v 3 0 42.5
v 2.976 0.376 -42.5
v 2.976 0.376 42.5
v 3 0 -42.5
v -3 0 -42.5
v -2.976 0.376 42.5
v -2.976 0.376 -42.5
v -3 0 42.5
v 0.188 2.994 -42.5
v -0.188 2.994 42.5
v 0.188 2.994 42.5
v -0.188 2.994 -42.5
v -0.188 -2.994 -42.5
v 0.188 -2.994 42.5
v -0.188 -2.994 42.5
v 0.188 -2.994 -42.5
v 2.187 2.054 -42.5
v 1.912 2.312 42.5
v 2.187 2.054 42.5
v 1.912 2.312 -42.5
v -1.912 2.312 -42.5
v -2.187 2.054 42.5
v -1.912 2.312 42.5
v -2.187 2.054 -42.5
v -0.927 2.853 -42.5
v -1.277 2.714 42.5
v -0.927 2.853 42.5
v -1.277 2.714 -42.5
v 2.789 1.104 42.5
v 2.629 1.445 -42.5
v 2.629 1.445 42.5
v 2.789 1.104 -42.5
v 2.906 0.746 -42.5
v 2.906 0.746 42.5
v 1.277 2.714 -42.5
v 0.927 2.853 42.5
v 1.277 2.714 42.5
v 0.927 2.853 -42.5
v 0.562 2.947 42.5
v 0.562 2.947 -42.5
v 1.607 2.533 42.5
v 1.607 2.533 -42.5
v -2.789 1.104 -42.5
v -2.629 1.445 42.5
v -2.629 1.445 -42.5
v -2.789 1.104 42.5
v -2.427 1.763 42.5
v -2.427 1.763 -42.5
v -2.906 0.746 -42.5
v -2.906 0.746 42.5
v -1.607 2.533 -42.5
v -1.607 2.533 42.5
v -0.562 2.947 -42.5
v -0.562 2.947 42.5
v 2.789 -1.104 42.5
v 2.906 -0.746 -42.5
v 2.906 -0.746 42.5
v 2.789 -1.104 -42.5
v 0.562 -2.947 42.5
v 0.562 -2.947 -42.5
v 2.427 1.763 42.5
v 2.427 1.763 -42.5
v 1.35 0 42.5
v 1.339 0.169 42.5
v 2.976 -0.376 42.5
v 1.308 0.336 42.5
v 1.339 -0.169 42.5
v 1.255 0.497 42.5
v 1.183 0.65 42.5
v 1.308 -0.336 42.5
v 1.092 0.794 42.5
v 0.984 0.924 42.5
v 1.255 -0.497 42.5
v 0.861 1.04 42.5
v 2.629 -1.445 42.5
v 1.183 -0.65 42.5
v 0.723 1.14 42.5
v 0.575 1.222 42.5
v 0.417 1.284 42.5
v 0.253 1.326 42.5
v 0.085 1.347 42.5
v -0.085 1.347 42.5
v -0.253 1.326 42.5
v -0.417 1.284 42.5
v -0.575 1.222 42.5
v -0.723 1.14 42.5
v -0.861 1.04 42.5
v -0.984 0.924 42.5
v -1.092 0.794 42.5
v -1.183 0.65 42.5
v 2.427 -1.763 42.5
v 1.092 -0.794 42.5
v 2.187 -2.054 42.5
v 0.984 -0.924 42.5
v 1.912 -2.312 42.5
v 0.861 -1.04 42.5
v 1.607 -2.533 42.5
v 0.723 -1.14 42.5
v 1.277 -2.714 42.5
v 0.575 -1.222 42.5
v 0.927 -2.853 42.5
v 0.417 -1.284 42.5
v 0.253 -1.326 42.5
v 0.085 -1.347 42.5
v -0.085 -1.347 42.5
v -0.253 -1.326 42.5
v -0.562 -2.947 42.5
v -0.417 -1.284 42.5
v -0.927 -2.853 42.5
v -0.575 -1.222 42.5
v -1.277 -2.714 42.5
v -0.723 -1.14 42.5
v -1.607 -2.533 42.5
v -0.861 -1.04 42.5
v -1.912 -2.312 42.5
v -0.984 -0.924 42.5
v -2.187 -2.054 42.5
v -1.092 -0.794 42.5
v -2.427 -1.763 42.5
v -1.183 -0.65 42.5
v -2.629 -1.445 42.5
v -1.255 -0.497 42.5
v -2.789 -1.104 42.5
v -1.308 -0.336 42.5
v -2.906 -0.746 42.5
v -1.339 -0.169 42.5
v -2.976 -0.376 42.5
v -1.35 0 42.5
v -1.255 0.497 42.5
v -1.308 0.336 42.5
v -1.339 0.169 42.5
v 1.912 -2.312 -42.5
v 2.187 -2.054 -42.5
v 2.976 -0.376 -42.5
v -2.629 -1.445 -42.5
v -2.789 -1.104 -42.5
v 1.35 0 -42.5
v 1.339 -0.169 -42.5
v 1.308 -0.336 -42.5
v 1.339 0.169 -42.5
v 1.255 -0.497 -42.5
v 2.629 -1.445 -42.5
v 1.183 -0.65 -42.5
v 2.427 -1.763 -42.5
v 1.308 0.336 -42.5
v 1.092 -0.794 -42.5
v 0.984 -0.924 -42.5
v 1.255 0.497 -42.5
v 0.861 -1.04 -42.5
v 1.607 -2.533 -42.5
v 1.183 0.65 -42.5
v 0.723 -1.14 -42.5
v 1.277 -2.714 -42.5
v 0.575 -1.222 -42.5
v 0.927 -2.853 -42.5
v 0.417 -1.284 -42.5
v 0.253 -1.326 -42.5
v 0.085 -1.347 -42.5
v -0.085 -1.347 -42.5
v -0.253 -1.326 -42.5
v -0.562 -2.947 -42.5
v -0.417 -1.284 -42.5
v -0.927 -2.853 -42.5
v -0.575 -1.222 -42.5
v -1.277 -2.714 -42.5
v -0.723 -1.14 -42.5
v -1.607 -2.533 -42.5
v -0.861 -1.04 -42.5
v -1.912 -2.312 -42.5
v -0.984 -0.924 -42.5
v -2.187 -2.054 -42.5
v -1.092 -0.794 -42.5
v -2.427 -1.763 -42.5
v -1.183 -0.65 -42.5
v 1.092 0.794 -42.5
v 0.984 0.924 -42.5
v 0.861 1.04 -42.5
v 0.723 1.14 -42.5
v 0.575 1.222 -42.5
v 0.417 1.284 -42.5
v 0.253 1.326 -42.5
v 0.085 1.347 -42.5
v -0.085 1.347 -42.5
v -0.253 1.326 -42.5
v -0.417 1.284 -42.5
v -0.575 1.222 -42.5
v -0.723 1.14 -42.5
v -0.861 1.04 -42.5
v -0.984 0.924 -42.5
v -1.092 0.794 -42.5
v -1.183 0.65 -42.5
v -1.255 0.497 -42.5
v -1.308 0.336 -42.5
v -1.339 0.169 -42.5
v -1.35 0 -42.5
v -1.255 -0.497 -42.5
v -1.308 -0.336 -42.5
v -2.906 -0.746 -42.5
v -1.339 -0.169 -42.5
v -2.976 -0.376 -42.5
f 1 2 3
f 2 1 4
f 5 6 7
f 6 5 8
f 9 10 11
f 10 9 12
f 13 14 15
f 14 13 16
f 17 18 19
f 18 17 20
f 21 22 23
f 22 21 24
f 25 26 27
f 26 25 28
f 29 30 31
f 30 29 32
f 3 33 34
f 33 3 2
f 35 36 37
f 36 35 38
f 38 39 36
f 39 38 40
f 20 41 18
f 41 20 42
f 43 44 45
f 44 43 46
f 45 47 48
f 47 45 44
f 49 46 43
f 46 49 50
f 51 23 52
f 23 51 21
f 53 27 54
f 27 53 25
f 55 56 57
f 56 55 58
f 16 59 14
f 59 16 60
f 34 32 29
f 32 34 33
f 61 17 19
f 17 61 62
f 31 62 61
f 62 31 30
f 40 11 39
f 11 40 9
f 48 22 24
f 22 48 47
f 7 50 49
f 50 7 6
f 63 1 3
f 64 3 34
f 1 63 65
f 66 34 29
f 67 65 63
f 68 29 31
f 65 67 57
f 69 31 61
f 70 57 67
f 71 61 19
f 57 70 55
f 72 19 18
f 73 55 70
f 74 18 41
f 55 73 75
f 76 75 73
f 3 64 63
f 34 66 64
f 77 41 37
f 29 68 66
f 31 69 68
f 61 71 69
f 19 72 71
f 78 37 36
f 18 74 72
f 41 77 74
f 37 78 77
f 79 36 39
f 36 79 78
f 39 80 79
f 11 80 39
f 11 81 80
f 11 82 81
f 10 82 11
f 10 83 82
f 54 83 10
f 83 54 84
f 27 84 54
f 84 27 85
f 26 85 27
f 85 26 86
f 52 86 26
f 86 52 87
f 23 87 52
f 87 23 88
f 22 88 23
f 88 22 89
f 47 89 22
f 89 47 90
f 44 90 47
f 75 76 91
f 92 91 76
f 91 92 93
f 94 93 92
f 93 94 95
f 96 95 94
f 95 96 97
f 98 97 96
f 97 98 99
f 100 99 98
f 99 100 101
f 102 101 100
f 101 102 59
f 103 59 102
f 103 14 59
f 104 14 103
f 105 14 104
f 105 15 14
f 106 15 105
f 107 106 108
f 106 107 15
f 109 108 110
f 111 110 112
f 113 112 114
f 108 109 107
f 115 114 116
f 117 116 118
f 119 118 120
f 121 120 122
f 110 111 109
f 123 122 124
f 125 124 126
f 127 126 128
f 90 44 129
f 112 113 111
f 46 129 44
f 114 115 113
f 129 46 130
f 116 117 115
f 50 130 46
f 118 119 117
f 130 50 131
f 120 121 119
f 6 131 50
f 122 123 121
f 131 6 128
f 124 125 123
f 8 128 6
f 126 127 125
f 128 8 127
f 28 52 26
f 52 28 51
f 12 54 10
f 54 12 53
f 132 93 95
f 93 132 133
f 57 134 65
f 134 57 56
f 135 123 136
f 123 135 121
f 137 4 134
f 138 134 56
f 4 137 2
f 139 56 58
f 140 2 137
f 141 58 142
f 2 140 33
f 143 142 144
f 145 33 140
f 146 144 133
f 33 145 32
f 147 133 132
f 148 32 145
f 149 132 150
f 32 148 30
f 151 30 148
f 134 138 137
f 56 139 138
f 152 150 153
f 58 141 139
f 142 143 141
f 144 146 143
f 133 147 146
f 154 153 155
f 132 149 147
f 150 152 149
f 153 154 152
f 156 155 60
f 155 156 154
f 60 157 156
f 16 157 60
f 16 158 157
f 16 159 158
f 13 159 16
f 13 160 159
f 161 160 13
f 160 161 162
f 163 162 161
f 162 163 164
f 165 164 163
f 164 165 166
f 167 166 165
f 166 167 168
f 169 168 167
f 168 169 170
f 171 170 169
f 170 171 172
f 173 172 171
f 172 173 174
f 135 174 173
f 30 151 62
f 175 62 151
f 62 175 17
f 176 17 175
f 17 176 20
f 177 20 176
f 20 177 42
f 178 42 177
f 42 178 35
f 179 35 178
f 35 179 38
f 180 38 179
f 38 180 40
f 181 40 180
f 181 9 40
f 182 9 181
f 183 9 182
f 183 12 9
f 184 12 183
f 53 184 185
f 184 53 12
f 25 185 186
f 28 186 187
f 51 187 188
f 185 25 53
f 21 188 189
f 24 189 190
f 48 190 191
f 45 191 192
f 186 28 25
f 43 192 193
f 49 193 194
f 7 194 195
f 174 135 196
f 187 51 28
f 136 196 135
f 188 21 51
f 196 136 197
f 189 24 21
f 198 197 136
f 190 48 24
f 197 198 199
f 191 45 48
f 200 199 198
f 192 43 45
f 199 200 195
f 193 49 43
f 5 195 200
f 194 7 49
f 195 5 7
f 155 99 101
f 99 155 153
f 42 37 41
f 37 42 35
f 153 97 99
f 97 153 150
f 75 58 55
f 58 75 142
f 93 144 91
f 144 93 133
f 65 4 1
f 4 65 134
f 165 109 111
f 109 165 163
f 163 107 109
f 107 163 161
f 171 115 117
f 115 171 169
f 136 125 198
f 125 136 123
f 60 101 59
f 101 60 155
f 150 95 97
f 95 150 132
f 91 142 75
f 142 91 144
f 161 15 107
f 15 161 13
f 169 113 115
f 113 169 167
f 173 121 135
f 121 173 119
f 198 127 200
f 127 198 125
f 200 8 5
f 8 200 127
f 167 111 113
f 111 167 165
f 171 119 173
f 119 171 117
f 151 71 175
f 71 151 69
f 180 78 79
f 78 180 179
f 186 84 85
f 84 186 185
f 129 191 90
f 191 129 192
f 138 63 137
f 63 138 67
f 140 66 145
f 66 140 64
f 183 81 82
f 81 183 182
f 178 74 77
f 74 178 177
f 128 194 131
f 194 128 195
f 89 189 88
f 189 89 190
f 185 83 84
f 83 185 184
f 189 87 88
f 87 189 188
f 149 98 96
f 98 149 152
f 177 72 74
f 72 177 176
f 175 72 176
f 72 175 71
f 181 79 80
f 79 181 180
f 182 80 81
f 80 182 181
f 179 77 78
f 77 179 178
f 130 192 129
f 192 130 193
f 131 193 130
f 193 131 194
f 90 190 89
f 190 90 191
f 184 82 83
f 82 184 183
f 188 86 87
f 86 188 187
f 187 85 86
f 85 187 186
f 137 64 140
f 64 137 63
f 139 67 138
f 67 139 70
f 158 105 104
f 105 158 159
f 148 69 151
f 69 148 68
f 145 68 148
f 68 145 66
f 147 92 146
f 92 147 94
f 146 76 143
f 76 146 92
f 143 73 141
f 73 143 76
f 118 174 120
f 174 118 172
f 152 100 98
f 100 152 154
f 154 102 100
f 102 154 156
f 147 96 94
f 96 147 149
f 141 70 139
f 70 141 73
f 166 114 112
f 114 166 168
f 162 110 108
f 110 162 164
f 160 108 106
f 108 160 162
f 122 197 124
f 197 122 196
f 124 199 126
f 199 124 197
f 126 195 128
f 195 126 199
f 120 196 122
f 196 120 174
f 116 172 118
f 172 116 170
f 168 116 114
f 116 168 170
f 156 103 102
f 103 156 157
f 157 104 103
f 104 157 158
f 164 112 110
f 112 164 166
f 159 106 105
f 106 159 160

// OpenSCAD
$fn = 50;


difference() {
	union() {
		translate(v = [0, 0, -42.5000000000]) {
			cylinder(h = 85, r = 3.0000000000);
		}
	}
	union() {
		translate(v = [0, 0, -100.0000000000]) {
			cylinder(h = 200, r = 1.3500000000);
		}
	}
}
